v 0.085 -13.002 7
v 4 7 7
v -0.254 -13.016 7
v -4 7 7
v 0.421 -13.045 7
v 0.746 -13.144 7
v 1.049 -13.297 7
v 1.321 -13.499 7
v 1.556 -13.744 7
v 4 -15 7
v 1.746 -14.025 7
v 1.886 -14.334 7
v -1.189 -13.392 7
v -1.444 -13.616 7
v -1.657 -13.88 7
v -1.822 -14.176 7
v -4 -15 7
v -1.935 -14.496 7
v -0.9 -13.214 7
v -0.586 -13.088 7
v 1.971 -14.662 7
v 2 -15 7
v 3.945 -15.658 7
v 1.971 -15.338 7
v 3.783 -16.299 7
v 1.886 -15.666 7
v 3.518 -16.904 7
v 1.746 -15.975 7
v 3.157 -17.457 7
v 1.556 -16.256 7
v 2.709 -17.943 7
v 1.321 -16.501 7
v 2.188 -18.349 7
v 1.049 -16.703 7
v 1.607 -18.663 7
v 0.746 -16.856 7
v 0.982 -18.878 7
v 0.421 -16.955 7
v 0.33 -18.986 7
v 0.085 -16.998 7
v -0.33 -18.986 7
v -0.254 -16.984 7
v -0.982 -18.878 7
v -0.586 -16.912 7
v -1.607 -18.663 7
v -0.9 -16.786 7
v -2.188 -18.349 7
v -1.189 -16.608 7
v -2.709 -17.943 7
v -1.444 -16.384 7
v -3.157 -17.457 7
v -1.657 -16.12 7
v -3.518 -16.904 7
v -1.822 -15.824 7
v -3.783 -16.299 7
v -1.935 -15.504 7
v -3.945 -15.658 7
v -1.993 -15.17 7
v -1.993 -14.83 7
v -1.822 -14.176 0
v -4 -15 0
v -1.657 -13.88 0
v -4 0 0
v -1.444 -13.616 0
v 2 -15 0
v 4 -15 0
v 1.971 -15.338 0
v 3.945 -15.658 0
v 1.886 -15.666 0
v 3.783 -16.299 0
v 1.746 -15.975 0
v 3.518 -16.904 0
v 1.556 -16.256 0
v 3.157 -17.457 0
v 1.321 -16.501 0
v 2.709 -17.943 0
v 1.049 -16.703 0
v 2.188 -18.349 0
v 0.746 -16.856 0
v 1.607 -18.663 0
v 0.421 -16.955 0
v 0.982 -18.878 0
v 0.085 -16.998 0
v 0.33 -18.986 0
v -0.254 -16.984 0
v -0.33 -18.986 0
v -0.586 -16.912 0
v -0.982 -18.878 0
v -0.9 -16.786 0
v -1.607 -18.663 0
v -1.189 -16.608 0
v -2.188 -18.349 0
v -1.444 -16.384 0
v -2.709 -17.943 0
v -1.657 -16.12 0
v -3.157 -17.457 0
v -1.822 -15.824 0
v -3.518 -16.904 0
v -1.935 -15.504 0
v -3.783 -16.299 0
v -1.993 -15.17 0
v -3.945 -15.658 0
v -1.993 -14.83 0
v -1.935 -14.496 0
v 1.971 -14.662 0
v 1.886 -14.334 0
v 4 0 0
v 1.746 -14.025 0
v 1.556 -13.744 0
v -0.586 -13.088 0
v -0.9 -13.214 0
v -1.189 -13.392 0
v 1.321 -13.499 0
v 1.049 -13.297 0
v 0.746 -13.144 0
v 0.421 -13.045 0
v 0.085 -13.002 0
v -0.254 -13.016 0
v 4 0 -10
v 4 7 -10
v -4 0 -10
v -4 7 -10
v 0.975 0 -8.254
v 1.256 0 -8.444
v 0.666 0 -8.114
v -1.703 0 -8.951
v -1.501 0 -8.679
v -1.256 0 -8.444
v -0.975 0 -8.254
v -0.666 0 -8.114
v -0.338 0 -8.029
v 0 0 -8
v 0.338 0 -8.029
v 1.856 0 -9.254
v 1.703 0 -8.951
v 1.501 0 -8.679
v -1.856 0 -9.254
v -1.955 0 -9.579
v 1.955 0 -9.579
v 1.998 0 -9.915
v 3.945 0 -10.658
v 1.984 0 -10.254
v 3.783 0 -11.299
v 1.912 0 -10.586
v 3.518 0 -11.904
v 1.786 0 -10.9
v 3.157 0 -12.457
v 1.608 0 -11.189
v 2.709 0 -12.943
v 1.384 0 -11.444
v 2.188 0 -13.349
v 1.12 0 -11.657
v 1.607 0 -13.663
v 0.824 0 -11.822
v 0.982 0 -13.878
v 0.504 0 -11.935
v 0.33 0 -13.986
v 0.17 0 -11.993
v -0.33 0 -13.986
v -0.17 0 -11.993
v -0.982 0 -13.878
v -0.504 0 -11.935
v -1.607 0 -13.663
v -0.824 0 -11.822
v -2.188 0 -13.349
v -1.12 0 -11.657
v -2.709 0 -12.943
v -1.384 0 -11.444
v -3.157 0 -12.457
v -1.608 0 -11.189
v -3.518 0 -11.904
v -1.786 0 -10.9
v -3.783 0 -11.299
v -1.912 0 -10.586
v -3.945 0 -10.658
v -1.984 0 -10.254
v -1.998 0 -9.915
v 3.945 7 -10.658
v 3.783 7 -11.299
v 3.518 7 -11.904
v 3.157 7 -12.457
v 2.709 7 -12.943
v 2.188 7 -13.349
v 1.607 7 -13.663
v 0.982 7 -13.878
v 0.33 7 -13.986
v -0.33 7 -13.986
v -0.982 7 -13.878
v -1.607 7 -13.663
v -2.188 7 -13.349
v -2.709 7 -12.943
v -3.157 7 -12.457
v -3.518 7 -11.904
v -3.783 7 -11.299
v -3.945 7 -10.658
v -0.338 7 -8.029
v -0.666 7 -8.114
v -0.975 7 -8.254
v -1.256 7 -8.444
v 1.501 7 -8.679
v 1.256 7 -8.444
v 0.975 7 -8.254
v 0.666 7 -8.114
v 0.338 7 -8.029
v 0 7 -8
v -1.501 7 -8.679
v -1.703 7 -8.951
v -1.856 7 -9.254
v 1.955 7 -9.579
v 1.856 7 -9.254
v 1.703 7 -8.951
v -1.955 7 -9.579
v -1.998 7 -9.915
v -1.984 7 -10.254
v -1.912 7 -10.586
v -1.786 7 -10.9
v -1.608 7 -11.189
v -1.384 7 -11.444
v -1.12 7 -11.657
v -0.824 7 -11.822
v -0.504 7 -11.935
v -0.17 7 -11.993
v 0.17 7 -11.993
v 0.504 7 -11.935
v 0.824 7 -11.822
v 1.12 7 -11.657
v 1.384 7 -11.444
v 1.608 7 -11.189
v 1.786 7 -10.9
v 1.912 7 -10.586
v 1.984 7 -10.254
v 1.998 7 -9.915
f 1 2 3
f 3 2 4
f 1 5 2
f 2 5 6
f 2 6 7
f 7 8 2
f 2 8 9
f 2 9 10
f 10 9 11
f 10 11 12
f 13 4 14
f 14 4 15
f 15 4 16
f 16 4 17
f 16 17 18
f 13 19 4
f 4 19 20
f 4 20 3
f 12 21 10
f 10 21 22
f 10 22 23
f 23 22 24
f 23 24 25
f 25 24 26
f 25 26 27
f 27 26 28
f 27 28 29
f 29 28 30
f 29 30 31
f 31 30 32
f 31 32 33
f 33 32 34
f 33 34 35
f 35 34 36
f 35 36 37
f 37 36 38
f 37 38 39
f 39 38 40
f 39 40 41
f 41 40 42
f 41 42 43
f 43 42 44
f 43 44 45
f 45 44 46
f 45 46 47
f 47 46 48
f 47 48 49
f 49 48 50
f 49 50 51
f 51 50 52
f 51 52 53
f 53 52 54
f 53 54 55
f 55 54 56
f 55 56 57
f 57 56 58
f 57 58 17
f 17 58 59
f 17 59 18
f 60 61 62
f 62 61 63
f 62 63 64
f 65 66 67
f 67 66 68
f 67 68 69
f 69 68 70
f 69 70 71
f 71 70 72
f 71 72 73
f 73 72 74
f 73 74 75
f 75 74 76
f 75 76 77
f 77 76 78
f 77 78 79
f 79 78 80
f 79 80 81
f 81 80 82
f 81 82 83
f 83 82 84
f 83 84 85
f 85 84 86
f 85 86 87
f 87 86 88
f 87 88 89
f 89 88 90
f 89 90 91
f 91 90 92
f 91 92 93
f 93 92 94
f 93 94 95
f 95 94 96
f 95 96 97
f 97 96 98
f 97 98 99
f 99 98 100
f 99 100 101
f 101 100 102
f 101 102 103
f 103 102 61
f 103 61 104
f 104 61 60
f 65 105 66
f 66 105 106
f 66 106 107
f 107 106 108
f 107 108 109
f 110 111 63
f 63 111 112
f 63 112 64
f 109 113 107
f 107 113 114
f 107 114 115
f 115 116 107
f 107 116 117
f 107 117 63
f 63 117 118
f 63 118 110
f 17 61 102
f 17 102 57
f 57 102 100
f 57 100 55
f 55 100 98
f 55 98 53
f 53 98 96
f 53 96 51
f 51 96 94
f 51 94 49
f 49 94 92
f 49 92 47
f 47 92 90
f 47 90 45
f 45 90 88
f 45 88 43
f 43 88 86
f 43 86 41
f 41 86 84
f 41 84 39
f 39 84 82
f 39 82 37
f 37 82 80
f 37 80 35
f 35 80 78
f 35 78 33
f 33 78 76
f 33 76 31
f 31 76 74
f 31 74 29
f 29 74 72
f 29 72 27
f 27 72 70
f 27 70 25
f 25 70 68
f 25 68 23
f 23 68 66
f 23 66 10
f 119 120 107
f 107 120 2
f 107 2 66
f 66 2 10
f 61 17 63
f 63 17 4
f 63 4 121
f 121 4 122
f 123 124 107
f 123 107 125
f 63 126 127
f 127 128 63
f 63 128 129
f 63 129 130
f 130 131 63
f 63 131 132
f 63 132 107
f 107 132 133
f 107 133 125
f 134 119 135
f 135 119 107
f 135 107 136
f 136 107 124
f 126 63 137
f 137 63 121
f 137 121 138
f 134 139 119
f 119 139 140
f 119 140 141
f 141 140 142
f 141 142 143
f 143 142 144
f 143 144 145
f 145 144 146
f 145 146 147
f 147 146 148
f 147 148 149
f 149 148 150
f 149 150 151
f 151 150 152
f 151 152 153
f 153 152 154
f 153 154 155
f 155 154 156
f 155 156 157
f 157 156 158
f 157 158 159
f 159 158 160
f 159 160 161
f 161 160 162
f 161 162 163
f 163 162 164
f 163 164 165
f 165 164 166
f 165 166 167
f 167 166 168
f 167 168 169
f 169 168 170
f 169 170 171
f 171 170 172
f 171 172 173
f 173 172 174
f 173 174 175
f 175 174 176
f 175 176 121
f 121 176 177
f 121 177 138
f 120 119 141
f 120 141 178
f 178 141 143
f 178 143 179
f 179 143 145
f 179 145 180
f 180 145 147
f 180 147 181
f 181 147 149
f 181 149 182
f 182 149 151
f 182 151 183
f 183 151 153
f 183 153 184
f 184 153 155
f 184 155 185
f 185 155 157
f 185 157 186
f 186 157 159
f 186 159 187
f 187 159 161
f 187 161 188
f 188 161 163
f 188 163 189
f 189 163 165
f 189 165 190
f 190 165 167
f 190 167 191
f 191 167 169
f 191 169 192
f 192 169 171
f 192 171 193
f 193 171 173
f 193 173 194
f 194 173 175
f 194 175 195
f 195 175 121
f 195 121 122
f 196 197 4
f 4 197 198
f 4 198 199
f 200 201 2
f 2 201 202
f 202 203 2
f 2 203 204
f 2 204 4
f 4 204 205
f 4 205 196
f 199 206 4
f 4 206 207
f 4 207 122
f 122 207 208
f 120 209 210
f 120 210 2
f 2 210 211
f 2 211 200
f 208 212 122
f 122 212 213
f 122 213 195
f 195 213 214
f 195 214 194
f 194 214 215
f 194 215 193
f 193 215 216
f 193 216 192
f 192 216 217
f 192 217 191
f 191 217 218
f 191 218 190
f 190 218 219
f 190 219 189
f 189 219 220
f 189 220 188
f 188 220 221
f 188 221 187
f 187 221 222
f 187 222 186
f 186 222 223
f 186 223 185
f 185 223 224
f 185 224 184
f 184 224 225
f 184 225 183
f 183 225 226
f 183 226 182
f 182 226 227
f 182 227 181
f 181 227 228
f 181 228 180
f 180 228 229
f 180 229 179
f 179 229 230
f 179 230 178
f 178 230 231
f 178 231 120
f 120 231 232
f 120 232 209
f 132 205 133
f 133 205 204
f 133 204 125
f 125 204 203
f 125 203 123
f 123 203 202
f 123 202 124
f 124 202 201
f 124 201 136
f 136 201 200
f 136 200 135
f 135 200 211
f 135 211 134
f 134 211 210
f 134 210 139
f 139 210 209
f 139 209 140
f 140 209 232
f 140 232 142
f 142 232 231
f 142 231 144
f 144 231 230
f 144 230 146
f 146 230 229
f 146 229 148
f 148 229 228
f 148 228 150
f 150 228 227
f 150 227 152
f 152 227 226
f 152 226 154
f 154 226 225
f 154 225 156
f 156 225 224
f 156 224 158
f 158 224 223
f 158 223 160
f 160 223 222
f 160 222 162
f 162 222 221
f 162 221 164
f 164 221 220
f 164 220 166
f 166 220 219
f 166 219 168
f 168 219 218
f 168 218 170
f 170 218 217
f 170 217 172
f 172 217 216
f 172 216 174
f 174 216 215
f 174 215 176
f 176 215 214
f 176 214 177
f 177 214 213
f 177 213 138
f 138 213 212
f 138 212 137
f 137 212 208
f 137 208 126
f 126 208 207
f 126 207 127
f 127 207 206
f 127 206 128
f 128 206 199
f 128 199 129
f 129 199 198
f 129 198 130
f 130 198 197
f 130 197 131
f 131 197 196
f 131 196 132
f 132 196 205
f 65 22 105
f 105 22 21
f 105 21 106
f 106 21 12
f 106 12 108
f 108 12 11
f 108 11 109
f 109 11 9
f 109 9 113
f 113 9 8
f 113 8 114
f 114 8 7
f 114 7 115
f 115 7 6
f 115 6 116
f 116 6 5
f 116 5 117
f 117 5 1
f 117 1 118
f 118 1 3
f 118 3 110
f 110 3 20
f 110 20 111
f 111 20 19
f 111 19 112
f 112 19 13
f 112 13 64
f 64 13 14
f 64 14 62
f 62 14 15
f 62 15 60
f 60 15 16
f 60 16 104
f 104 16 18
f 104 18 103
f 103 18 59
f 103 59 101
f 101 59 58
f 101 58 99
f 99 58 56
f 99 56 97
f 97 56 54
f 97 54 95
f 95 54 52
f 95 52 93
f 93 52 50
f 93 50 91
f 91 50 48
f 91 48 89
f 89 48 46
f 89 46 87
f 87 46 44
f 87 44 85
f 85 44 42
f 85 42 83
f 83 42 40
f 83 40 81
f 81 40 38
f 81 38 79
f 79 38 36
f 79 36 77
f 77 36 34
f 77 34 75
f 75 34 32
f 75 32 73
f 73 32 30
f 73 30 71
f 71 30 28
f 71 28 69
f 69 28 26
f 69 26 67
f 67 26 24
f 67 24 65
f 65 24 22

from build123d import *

# Parameters (mm, degrees)
SKETCH2_R           = 1.5
BOSS_EXTRUDE1_DEPTH = 7
SKETCH3_R           = 1.5
BOSS_EXTRUDE2_DEPTH = 7
SKETCH4_R           = 2
CUT_EXTRUDE1_DEPTH  = 10
SKETCH5_R           = 2
CUT_EXTRUDE2_DEPTH  = 10


with BuildPart() as part:
    # Sketch2 → Boss-Extrude1 (new body)
    with BuildSketch(Plane.XY):
        with BuildLine():
            Line((-4, -15), (-4, 0))
            Line((-4, 0), (4, 0))
            Line((4, 0), (4, -15))
            ThreePointArc((4, -15), (0, -19), (-4, -15))
        make_face()
        with Locations((0, -15)):
            Circle(SKETCH2_R, mode=Mode.SUBTRACT)
    extrude(amount=BOSS_EXTRUDE1_DEPTH)

    # Sketch3 → Boss-Extrude2 (add)
    with BuildSketch(Plane(origin=(0, 0, 0), x_dir=(1, 0, 0), z_dir=(0, 1, 0))):
        with BuildLine():
            Line((-4, 10), (-4, -7))
            Line((-4, -7), (4, -7))
            Line((4, -7), (4, 10))
            ThreePointArc((4, 10), (0, 14), (-4, 10))
        make_face()
        with Locations((0, 10)):
            Circle(SKETCH3_R, mode=Mode.SUBTRACT)
    extrude(amount=BOSS_EXTRUDE2_DEPTH)

    # Sketch4 → Cut-Extrude1 (cut)
    with BuildSketch(Plane(origin=(0, 7, 0), x_dir=(1, 0, 0), z_dir=(0, 1, 0))):
        with Locations((0, 10)):
            Circle(SKETCH4_R)
    extrude(amount=-CUT_EXTRUDE1_DEPTH, mode=Mode.SUBTRACT)

    # Sketch5 → Cut-Extrude2 (cut)
    with BuildSketch(Plane.XY.offset(7)):
        with Locations((0, -15)):
            Circle(SKETCH5_R)
    extrude(amount=-CUT_EXTRUDE2_DEPTH, mode=Mode.SUBTRACT)


solid = part.part
